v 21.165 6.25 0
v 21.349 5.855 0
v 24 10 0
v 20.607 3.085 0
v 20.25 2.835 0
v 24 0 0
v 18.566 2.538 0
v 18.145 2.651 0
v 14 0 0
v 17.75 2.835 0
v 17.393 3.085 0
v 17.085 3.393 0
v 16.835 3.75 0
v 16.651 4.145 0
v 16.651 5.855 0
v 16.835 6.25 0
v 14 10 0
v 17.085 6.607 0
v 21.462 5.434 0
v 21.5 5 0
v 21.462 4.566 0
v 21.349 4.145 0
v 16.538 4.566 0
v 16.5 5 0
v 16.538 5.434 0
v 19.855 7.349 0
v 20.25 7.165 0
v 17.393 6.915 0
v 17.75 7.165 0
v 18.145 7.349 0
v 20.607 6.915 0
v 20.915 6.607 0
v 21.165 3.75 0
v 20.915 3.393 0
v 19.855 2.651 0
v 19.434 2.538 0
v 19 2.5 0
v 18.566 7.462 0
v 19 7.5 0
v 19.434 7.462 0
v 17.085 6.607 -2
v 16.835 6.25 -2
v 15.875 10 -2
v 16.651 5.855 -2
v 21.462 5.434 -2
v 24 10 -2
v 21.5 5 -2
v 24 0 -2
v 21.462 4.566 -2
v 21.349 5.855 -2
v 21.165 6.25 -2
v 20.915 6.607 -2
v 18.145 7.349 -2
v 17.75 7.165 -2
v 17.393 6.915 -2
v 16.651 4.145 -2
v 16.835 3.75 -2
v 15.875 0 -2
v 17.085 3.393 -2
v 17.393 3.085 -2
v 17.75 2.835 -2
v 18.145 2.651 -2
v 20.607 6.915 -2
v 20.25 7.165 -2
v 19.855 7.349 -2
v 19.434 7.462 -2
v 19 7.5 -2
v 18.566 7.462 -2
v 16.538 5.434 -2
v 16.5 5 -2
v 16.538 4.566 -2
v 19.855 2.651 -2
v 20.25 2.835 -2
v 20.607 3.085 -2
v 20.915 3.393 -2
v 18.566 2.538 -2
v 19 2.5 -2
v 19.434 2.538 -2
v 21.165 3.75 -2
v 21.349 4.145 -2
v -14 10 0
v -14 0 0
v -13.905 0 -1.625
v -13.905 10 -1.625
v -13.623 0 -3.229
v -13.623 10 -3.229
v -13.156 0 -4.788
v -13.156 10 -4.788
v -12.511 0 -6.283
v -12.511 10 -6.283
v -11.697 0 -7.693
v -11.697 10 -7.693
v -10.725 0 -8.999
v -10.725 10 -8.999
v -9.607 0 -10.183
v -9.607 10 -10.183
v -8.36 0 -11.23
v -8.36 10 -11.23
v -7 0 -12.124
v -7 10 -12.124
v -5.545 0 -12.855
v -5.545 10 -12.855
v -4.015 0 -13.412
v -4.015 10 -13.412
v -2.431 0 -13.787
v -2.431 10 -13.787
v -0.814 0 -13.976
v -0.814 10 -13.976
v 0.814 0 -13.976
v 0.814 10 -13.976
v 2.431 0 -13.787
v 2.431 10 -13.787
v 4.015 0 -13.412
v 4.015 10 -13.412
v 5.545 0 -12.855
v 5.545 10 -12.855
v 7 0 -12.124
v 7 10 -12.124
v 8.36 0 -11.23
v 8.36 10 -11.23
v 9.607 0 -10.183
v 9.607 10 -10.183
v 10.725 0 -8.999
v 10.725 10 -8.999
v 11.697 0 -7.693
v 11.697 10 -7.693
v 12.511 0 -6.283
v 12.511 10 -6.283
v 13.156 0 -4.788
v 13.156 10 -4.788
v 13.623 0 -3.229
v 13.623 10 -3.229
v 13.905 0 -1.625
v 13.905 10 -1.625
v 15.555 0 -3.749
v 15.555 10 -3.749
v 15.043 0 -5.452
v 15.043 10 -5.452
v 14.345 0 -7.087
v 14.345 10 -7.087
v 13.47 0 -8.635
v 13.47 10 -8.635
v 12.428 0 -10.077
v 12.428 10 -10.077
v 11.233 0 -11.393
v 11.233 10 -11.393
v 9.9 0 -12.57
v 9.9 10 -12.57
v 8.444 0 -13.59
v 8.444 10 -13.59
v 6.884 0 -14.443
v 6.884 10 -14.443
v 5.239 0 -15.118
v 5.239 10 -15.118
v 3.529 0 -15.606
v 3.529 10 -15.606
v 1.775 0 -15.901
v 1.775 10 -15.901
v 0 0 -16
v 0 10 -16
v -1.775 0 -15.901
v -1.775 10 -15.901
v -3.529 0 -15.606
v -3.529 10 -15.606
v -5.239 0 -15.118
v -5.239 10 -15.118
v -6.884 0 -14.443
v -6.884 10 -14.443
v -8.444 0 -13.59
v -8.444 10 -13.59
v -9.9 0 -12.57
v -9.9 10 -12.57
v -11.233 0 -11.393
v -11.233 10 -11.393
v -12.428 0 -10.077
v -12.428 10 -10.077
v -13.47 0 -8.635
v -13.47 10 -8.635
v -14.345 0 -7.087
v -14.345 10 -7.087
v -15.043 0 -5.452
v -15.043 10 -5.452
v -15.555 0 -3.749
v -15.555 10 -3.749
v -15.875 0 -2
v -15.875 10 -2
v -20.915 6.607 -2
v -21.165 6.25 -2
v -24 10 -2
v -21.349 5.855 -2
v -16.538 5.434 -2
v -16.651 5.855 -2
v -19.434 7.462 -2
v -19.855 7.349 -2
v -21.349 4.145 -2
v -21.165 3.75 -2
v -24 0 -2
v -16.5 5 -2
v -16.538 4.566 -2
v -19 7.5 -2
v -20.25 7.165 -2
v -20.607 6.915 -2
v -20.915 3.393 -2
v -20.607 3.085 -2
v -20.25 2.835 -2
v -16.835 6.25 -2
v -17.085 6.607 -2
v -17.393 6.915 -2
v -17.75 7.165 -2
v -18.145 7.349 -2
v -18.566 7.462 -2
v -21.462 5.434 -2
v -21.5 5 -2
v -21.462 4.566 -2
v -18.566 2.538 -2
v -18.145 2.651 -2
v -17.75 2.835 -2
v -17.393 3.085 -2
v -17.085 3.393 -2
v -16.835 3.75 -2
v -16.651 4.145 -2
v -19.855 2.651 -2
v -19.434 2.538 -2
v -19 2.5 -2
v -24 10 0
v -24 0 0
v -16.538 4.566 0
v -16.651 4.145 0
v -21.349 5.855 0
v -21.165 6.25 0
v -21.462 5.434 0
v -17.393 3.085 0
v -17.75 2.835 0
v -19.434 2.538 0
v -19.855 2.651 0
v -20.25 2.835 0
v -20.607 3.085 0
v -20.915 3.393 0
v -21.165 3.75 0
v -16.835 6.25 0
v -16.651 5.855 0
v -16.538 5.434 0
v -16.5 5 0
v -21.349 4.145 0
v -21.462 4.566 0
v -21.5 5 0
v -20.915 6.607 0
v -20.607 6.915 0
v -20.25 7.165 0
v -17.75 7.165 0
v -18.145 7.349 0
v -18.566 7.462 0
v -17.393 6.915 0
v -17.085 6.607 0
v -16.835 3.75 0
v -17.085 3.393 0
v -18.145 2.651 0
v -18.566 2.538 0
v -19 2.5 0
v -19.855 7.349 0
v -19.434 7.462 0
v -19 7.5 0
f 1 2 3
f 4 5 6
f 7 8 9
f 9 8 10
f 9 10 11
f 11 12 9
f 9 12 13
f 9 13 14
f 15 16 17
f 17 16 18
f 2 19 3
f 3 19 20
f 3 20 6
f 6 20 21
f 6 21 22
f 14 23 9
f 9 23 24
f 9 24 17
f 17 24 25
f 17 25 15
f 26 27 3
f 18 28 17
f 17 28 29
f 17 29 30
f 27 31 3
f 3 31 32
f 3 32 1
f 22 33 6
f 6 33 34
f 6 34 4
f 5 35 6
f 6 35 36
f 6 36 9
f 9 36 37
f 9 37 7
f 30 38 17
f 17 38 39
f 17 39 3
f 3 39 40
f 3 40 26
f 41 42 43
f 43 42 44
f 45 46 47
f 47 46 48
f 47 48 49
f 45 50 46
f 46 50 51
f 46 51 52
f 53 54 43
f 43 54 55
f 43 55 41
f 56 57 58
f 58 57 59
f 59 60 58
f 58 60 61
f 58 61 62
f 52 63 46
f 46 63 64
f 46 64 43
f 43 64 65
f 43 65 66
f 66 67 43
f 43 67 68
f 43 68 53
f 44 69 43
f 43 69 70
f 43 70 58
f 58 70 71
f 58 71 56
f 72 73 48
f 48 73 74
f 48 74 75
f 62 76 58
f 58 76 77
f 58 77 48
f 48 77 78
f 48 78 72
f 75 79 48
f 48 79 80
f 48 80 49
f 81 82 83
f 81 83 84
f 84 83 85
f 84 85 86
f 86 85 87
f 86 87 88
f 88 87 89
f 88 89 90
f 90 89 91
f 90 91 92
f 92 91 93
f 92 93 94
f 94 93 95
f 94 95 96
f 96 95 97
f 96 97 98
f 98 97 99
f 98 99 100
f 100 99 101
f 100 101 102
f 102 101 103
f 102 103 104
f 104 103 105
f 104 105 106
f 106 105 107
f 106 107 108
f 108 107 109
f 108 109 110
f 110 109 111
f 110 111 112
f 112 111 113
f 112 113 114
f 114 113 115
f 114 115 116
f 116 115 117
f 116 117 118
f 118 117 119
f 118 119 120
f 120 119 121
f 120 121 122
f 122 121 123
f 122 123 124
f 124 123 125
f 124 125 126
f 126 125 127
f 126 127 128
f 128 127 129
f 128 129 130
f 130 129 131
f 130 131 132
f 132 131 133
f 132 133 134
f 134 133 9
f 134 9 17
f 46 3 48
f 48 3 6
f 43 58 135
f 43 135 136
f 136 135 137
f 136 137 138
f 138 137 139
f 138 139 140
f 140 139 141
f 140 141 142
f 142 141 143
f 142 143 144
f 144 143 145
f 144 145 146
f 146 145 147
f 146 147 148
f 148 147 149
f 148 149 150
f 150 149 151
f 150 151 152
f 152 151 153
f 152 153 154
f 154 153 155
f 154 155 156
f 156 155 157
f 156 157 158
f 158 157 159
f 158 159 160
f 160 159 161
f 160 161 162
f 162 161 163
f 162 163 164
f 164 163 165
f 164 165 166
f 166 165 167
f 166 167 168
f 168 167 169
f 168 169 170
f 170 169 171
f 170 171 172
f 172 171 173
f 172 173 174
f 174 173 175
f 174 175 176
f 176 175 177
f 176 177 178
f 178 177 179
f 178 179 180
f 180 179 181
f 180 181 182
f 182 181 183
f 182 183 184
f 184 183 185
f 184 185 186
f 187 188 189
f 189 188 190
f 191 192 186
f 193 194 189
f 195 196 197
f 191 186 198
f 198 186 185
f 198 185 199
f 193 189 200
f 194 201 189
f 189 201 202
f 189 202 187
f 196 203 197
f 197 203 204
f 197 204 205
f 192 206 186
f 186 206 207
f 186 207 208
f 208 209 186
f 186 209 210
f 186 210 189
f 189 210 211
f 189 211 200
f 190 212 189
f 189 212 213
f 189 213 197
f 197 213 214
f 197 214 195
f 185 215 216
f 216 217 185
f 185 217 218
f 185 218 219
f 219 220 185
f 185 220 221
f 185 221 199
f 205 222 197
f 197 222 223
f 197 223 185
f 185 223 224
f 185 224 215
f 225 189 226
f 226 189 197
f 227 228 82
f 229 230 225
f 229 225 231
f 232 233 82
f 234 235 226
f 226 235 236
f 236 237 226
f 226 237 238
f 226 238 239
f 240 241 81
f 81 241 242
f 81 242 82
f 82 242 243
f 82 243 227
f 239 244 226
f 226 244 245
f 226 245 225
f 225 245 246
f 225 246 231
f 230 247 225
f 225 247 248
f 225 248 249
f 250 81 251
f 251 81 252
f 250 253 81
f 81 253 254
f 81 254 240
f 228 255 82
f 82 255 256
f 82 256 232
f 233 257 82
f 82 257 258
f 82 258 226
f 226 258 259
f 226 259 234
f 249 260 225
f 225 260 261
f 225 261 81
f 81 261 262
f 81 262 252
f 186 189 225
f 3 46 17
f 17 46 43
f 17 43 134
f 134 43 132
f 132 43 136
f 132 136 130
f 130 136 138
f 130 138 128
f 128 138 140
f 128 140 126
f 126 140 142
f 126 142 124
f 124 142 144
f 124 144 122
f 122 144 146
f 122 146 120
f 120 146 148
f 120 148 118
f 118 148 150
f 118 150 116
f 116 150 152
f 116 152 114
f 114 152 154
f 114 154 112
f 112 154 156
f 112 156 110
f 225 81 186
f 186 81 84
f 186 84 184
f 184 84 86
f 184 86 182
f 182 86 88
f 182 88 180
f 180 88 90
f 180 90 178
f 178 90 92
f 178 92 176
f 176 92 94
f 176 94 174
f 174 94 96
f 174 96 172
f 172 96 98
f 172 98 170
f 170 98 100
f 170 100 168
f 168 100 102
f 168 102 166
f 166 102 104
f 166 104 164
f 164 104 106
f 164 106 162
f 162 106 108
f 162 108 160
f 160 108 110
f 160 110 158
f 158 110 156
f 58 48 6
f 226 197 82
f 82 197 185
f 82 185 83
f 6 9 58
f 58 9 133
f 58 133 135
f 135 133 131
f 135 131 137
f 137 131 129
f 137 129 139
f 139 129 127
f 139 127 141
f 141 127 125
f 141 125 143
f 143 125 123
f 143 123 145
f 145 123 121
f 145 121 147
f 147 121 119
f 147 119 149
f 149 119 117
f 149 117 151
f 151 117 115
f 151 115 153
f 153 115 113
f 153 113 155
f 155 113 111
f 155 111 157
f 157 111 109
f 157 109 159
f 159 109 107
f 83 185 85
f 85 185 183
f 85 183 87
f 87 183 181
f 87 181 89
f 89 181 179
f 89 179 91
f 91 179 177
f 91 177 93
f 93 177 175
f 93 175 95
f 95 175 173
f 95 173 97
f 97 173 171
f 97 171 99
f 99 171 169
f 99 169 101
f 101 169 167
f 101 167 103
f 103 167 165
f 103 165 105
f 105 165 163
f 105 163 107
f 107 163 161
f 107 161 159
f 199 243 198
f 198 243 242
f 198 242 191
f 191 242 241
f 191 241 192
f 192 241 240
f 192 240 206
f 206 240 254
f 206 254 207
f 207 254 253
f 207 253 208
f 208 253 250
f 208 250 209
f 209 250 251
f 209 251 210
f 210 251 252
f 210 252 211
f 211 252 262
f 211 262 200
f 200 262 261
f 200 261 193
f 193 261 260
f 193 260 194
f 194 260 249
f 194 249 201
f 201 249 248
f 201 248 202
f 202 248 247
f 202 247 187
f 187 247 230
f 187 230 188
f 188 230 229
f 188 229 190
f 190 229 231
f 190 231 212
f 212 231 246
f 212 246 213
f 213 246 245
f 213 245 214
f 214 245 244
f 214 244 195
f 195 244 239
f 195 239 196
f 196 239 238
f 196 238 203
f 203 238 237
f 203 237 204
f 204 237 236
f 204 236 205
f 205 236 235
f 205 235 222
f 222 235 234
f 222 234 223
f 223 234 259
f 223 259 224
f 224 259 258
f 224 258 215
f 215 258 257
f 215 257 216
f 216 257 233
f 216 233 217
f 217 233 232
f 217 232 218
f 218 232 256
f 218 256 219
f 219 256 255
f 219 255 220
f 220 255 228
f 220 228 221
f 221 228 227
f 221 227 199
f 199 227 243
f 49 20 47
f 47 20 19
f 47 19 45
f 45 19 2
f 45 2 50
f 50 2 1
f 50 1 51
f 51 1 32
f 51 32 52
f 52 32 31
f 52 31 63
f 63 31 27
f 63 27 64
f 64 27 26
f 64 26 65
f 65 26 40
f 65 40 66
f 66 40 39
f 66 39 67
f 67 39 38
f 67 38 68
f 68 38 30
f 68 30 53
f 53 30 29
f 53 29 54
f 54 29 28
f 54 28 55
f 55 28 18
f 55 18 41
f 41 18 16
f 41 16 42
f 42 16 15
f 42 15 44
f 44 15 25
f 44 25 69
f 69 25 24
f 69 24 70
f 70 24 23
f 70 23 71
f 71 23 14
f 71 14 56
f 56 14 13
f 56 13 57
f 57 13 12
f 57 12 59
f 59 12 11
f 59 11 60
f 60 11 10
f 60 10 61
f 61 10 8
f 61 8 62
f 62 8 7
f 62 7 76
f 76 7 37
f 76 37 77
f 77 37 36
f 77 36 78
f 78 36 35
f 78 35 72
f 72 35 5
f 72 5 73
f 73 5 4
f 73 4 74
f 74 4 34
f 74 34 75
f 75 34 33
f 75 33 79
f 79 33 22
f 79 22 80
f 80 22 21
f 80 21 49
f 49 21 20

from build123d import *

# Parameters (mm, degrees)
EXTRUDE_1_DEPTH     = 10
SKETCH_2_R          = 2.5
CUT_EXTRUDE_1_DEPTH = 31.528675045


with BuildPart() as part:
    # Эскиз1 → Бобышка-Вытянуть1 (new body)
    with BuildSketch(Plane(origin=(0, 0, 0), x_dir=(1, 0, 0), z_dir=(0, 1, 0))):
        with BuildLine():
            Line((-14, 0), (-24, 0))
            Line((-24, 0), (-24, 2))
            Line((-24, 2), (-15.874507866, 2))
            ThreePointArc((-15.874507866, 2), (0, 16), (15.874507866, 2))
            Line((15.874507866, 2), (24, 2))
            Line((24, 2), (24, 0))
            Line((24, 0), (14, 0))
            ThreePointArc((14, 0), (0, 14), (-14, 0))
        make_face()
    extrude(amount=EXTRUDE_1_DEPTH)

    # Эскиз2 → Вырез-Вытянуть1 (cut, through all)
    with BuildSketch(Plane.XY):
        with Locations((-19, 5)):
            Circle(SKETCH_2_R)
    cut_extrude_1 = extrude(amount=-CUT_EXTRUDE_1_DEPTH, mode=Mode.SUBTRACT)

    # Зеркальное отражение1: Вырез-Вытянуть1 across plane
    add(cut_extrude_1.mirror(Plane(origin=(0, 0, 0), x_dir=(0, 0, 1), z_dir=(1, 0, 0))), mode=Mode.SUBTRACT)


solid = part.part
